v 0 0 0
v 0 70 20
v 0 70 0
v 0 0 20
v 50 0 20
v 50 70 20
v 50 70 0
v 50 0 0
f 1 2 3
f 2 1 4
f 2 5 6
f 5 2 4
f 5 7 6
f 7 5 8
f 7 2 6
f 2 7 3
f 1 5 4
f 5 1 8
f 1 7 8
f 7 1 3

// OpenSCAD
module hollow_outline(width, height, depth, wall_thickness, detail = 6) {
  difference() {
    hull() {
      translate([0, 0, 0]) cube([width, height, depth]);
      translate([width/4, height/4, depth/4]) cube([width/2, height/2, depth/2]);
      translate([width/4, 0, depth/4]) cube([width/2, height, depth/2]);
      translate([0, height/4, depth/4]) cube([width, height/2, depth/2]);
      translate([0, 0, 0]) cube([width, height, depth]);
    }
    translate([wall_thickness, wall_thickness, wall_thickness]) {
      difference() {
        cube([width - 2 * wall_thickness, height - 2 * wall_thickness, depth - 2 * wall_thickness]);
        translate([0, 0, 0]) cube([width - 2 * wall_thickness, height - 2 * wall_thickness, depth - 2 * wall_thickness]);
        translate([0, 0, 0]) cube([width - 2 * wall_thickness, height - 2 * wall_thickness, depth - 2 * wall_thickness]);
        translate([0, 0, 0]) cube([width - 2 * wall_thickness, height - 2 * wall_thickness, depth - 2 * wall_thickness]);
        translate([0, 0, 0]) cube([width - 2 * wall_thickness, height - 2 * wall_thickness, depth - 2 * wall_thickness]);
        translate([0, 0, 0]) cube([width - 2 * wall_thickness, height - 2 * wall_thickness, depth - 2 * wall_thickness]);
        translate([0, 0, 0]) cube([width - 2 * wall_thickness, height - 2 * wall_thickness, depth - 2 * wall_thickness]);

      }
    }
  }
}

hollow_outline(width = 50, height = 70, depth = 20, wall_thickness = 3, detail = 16);
